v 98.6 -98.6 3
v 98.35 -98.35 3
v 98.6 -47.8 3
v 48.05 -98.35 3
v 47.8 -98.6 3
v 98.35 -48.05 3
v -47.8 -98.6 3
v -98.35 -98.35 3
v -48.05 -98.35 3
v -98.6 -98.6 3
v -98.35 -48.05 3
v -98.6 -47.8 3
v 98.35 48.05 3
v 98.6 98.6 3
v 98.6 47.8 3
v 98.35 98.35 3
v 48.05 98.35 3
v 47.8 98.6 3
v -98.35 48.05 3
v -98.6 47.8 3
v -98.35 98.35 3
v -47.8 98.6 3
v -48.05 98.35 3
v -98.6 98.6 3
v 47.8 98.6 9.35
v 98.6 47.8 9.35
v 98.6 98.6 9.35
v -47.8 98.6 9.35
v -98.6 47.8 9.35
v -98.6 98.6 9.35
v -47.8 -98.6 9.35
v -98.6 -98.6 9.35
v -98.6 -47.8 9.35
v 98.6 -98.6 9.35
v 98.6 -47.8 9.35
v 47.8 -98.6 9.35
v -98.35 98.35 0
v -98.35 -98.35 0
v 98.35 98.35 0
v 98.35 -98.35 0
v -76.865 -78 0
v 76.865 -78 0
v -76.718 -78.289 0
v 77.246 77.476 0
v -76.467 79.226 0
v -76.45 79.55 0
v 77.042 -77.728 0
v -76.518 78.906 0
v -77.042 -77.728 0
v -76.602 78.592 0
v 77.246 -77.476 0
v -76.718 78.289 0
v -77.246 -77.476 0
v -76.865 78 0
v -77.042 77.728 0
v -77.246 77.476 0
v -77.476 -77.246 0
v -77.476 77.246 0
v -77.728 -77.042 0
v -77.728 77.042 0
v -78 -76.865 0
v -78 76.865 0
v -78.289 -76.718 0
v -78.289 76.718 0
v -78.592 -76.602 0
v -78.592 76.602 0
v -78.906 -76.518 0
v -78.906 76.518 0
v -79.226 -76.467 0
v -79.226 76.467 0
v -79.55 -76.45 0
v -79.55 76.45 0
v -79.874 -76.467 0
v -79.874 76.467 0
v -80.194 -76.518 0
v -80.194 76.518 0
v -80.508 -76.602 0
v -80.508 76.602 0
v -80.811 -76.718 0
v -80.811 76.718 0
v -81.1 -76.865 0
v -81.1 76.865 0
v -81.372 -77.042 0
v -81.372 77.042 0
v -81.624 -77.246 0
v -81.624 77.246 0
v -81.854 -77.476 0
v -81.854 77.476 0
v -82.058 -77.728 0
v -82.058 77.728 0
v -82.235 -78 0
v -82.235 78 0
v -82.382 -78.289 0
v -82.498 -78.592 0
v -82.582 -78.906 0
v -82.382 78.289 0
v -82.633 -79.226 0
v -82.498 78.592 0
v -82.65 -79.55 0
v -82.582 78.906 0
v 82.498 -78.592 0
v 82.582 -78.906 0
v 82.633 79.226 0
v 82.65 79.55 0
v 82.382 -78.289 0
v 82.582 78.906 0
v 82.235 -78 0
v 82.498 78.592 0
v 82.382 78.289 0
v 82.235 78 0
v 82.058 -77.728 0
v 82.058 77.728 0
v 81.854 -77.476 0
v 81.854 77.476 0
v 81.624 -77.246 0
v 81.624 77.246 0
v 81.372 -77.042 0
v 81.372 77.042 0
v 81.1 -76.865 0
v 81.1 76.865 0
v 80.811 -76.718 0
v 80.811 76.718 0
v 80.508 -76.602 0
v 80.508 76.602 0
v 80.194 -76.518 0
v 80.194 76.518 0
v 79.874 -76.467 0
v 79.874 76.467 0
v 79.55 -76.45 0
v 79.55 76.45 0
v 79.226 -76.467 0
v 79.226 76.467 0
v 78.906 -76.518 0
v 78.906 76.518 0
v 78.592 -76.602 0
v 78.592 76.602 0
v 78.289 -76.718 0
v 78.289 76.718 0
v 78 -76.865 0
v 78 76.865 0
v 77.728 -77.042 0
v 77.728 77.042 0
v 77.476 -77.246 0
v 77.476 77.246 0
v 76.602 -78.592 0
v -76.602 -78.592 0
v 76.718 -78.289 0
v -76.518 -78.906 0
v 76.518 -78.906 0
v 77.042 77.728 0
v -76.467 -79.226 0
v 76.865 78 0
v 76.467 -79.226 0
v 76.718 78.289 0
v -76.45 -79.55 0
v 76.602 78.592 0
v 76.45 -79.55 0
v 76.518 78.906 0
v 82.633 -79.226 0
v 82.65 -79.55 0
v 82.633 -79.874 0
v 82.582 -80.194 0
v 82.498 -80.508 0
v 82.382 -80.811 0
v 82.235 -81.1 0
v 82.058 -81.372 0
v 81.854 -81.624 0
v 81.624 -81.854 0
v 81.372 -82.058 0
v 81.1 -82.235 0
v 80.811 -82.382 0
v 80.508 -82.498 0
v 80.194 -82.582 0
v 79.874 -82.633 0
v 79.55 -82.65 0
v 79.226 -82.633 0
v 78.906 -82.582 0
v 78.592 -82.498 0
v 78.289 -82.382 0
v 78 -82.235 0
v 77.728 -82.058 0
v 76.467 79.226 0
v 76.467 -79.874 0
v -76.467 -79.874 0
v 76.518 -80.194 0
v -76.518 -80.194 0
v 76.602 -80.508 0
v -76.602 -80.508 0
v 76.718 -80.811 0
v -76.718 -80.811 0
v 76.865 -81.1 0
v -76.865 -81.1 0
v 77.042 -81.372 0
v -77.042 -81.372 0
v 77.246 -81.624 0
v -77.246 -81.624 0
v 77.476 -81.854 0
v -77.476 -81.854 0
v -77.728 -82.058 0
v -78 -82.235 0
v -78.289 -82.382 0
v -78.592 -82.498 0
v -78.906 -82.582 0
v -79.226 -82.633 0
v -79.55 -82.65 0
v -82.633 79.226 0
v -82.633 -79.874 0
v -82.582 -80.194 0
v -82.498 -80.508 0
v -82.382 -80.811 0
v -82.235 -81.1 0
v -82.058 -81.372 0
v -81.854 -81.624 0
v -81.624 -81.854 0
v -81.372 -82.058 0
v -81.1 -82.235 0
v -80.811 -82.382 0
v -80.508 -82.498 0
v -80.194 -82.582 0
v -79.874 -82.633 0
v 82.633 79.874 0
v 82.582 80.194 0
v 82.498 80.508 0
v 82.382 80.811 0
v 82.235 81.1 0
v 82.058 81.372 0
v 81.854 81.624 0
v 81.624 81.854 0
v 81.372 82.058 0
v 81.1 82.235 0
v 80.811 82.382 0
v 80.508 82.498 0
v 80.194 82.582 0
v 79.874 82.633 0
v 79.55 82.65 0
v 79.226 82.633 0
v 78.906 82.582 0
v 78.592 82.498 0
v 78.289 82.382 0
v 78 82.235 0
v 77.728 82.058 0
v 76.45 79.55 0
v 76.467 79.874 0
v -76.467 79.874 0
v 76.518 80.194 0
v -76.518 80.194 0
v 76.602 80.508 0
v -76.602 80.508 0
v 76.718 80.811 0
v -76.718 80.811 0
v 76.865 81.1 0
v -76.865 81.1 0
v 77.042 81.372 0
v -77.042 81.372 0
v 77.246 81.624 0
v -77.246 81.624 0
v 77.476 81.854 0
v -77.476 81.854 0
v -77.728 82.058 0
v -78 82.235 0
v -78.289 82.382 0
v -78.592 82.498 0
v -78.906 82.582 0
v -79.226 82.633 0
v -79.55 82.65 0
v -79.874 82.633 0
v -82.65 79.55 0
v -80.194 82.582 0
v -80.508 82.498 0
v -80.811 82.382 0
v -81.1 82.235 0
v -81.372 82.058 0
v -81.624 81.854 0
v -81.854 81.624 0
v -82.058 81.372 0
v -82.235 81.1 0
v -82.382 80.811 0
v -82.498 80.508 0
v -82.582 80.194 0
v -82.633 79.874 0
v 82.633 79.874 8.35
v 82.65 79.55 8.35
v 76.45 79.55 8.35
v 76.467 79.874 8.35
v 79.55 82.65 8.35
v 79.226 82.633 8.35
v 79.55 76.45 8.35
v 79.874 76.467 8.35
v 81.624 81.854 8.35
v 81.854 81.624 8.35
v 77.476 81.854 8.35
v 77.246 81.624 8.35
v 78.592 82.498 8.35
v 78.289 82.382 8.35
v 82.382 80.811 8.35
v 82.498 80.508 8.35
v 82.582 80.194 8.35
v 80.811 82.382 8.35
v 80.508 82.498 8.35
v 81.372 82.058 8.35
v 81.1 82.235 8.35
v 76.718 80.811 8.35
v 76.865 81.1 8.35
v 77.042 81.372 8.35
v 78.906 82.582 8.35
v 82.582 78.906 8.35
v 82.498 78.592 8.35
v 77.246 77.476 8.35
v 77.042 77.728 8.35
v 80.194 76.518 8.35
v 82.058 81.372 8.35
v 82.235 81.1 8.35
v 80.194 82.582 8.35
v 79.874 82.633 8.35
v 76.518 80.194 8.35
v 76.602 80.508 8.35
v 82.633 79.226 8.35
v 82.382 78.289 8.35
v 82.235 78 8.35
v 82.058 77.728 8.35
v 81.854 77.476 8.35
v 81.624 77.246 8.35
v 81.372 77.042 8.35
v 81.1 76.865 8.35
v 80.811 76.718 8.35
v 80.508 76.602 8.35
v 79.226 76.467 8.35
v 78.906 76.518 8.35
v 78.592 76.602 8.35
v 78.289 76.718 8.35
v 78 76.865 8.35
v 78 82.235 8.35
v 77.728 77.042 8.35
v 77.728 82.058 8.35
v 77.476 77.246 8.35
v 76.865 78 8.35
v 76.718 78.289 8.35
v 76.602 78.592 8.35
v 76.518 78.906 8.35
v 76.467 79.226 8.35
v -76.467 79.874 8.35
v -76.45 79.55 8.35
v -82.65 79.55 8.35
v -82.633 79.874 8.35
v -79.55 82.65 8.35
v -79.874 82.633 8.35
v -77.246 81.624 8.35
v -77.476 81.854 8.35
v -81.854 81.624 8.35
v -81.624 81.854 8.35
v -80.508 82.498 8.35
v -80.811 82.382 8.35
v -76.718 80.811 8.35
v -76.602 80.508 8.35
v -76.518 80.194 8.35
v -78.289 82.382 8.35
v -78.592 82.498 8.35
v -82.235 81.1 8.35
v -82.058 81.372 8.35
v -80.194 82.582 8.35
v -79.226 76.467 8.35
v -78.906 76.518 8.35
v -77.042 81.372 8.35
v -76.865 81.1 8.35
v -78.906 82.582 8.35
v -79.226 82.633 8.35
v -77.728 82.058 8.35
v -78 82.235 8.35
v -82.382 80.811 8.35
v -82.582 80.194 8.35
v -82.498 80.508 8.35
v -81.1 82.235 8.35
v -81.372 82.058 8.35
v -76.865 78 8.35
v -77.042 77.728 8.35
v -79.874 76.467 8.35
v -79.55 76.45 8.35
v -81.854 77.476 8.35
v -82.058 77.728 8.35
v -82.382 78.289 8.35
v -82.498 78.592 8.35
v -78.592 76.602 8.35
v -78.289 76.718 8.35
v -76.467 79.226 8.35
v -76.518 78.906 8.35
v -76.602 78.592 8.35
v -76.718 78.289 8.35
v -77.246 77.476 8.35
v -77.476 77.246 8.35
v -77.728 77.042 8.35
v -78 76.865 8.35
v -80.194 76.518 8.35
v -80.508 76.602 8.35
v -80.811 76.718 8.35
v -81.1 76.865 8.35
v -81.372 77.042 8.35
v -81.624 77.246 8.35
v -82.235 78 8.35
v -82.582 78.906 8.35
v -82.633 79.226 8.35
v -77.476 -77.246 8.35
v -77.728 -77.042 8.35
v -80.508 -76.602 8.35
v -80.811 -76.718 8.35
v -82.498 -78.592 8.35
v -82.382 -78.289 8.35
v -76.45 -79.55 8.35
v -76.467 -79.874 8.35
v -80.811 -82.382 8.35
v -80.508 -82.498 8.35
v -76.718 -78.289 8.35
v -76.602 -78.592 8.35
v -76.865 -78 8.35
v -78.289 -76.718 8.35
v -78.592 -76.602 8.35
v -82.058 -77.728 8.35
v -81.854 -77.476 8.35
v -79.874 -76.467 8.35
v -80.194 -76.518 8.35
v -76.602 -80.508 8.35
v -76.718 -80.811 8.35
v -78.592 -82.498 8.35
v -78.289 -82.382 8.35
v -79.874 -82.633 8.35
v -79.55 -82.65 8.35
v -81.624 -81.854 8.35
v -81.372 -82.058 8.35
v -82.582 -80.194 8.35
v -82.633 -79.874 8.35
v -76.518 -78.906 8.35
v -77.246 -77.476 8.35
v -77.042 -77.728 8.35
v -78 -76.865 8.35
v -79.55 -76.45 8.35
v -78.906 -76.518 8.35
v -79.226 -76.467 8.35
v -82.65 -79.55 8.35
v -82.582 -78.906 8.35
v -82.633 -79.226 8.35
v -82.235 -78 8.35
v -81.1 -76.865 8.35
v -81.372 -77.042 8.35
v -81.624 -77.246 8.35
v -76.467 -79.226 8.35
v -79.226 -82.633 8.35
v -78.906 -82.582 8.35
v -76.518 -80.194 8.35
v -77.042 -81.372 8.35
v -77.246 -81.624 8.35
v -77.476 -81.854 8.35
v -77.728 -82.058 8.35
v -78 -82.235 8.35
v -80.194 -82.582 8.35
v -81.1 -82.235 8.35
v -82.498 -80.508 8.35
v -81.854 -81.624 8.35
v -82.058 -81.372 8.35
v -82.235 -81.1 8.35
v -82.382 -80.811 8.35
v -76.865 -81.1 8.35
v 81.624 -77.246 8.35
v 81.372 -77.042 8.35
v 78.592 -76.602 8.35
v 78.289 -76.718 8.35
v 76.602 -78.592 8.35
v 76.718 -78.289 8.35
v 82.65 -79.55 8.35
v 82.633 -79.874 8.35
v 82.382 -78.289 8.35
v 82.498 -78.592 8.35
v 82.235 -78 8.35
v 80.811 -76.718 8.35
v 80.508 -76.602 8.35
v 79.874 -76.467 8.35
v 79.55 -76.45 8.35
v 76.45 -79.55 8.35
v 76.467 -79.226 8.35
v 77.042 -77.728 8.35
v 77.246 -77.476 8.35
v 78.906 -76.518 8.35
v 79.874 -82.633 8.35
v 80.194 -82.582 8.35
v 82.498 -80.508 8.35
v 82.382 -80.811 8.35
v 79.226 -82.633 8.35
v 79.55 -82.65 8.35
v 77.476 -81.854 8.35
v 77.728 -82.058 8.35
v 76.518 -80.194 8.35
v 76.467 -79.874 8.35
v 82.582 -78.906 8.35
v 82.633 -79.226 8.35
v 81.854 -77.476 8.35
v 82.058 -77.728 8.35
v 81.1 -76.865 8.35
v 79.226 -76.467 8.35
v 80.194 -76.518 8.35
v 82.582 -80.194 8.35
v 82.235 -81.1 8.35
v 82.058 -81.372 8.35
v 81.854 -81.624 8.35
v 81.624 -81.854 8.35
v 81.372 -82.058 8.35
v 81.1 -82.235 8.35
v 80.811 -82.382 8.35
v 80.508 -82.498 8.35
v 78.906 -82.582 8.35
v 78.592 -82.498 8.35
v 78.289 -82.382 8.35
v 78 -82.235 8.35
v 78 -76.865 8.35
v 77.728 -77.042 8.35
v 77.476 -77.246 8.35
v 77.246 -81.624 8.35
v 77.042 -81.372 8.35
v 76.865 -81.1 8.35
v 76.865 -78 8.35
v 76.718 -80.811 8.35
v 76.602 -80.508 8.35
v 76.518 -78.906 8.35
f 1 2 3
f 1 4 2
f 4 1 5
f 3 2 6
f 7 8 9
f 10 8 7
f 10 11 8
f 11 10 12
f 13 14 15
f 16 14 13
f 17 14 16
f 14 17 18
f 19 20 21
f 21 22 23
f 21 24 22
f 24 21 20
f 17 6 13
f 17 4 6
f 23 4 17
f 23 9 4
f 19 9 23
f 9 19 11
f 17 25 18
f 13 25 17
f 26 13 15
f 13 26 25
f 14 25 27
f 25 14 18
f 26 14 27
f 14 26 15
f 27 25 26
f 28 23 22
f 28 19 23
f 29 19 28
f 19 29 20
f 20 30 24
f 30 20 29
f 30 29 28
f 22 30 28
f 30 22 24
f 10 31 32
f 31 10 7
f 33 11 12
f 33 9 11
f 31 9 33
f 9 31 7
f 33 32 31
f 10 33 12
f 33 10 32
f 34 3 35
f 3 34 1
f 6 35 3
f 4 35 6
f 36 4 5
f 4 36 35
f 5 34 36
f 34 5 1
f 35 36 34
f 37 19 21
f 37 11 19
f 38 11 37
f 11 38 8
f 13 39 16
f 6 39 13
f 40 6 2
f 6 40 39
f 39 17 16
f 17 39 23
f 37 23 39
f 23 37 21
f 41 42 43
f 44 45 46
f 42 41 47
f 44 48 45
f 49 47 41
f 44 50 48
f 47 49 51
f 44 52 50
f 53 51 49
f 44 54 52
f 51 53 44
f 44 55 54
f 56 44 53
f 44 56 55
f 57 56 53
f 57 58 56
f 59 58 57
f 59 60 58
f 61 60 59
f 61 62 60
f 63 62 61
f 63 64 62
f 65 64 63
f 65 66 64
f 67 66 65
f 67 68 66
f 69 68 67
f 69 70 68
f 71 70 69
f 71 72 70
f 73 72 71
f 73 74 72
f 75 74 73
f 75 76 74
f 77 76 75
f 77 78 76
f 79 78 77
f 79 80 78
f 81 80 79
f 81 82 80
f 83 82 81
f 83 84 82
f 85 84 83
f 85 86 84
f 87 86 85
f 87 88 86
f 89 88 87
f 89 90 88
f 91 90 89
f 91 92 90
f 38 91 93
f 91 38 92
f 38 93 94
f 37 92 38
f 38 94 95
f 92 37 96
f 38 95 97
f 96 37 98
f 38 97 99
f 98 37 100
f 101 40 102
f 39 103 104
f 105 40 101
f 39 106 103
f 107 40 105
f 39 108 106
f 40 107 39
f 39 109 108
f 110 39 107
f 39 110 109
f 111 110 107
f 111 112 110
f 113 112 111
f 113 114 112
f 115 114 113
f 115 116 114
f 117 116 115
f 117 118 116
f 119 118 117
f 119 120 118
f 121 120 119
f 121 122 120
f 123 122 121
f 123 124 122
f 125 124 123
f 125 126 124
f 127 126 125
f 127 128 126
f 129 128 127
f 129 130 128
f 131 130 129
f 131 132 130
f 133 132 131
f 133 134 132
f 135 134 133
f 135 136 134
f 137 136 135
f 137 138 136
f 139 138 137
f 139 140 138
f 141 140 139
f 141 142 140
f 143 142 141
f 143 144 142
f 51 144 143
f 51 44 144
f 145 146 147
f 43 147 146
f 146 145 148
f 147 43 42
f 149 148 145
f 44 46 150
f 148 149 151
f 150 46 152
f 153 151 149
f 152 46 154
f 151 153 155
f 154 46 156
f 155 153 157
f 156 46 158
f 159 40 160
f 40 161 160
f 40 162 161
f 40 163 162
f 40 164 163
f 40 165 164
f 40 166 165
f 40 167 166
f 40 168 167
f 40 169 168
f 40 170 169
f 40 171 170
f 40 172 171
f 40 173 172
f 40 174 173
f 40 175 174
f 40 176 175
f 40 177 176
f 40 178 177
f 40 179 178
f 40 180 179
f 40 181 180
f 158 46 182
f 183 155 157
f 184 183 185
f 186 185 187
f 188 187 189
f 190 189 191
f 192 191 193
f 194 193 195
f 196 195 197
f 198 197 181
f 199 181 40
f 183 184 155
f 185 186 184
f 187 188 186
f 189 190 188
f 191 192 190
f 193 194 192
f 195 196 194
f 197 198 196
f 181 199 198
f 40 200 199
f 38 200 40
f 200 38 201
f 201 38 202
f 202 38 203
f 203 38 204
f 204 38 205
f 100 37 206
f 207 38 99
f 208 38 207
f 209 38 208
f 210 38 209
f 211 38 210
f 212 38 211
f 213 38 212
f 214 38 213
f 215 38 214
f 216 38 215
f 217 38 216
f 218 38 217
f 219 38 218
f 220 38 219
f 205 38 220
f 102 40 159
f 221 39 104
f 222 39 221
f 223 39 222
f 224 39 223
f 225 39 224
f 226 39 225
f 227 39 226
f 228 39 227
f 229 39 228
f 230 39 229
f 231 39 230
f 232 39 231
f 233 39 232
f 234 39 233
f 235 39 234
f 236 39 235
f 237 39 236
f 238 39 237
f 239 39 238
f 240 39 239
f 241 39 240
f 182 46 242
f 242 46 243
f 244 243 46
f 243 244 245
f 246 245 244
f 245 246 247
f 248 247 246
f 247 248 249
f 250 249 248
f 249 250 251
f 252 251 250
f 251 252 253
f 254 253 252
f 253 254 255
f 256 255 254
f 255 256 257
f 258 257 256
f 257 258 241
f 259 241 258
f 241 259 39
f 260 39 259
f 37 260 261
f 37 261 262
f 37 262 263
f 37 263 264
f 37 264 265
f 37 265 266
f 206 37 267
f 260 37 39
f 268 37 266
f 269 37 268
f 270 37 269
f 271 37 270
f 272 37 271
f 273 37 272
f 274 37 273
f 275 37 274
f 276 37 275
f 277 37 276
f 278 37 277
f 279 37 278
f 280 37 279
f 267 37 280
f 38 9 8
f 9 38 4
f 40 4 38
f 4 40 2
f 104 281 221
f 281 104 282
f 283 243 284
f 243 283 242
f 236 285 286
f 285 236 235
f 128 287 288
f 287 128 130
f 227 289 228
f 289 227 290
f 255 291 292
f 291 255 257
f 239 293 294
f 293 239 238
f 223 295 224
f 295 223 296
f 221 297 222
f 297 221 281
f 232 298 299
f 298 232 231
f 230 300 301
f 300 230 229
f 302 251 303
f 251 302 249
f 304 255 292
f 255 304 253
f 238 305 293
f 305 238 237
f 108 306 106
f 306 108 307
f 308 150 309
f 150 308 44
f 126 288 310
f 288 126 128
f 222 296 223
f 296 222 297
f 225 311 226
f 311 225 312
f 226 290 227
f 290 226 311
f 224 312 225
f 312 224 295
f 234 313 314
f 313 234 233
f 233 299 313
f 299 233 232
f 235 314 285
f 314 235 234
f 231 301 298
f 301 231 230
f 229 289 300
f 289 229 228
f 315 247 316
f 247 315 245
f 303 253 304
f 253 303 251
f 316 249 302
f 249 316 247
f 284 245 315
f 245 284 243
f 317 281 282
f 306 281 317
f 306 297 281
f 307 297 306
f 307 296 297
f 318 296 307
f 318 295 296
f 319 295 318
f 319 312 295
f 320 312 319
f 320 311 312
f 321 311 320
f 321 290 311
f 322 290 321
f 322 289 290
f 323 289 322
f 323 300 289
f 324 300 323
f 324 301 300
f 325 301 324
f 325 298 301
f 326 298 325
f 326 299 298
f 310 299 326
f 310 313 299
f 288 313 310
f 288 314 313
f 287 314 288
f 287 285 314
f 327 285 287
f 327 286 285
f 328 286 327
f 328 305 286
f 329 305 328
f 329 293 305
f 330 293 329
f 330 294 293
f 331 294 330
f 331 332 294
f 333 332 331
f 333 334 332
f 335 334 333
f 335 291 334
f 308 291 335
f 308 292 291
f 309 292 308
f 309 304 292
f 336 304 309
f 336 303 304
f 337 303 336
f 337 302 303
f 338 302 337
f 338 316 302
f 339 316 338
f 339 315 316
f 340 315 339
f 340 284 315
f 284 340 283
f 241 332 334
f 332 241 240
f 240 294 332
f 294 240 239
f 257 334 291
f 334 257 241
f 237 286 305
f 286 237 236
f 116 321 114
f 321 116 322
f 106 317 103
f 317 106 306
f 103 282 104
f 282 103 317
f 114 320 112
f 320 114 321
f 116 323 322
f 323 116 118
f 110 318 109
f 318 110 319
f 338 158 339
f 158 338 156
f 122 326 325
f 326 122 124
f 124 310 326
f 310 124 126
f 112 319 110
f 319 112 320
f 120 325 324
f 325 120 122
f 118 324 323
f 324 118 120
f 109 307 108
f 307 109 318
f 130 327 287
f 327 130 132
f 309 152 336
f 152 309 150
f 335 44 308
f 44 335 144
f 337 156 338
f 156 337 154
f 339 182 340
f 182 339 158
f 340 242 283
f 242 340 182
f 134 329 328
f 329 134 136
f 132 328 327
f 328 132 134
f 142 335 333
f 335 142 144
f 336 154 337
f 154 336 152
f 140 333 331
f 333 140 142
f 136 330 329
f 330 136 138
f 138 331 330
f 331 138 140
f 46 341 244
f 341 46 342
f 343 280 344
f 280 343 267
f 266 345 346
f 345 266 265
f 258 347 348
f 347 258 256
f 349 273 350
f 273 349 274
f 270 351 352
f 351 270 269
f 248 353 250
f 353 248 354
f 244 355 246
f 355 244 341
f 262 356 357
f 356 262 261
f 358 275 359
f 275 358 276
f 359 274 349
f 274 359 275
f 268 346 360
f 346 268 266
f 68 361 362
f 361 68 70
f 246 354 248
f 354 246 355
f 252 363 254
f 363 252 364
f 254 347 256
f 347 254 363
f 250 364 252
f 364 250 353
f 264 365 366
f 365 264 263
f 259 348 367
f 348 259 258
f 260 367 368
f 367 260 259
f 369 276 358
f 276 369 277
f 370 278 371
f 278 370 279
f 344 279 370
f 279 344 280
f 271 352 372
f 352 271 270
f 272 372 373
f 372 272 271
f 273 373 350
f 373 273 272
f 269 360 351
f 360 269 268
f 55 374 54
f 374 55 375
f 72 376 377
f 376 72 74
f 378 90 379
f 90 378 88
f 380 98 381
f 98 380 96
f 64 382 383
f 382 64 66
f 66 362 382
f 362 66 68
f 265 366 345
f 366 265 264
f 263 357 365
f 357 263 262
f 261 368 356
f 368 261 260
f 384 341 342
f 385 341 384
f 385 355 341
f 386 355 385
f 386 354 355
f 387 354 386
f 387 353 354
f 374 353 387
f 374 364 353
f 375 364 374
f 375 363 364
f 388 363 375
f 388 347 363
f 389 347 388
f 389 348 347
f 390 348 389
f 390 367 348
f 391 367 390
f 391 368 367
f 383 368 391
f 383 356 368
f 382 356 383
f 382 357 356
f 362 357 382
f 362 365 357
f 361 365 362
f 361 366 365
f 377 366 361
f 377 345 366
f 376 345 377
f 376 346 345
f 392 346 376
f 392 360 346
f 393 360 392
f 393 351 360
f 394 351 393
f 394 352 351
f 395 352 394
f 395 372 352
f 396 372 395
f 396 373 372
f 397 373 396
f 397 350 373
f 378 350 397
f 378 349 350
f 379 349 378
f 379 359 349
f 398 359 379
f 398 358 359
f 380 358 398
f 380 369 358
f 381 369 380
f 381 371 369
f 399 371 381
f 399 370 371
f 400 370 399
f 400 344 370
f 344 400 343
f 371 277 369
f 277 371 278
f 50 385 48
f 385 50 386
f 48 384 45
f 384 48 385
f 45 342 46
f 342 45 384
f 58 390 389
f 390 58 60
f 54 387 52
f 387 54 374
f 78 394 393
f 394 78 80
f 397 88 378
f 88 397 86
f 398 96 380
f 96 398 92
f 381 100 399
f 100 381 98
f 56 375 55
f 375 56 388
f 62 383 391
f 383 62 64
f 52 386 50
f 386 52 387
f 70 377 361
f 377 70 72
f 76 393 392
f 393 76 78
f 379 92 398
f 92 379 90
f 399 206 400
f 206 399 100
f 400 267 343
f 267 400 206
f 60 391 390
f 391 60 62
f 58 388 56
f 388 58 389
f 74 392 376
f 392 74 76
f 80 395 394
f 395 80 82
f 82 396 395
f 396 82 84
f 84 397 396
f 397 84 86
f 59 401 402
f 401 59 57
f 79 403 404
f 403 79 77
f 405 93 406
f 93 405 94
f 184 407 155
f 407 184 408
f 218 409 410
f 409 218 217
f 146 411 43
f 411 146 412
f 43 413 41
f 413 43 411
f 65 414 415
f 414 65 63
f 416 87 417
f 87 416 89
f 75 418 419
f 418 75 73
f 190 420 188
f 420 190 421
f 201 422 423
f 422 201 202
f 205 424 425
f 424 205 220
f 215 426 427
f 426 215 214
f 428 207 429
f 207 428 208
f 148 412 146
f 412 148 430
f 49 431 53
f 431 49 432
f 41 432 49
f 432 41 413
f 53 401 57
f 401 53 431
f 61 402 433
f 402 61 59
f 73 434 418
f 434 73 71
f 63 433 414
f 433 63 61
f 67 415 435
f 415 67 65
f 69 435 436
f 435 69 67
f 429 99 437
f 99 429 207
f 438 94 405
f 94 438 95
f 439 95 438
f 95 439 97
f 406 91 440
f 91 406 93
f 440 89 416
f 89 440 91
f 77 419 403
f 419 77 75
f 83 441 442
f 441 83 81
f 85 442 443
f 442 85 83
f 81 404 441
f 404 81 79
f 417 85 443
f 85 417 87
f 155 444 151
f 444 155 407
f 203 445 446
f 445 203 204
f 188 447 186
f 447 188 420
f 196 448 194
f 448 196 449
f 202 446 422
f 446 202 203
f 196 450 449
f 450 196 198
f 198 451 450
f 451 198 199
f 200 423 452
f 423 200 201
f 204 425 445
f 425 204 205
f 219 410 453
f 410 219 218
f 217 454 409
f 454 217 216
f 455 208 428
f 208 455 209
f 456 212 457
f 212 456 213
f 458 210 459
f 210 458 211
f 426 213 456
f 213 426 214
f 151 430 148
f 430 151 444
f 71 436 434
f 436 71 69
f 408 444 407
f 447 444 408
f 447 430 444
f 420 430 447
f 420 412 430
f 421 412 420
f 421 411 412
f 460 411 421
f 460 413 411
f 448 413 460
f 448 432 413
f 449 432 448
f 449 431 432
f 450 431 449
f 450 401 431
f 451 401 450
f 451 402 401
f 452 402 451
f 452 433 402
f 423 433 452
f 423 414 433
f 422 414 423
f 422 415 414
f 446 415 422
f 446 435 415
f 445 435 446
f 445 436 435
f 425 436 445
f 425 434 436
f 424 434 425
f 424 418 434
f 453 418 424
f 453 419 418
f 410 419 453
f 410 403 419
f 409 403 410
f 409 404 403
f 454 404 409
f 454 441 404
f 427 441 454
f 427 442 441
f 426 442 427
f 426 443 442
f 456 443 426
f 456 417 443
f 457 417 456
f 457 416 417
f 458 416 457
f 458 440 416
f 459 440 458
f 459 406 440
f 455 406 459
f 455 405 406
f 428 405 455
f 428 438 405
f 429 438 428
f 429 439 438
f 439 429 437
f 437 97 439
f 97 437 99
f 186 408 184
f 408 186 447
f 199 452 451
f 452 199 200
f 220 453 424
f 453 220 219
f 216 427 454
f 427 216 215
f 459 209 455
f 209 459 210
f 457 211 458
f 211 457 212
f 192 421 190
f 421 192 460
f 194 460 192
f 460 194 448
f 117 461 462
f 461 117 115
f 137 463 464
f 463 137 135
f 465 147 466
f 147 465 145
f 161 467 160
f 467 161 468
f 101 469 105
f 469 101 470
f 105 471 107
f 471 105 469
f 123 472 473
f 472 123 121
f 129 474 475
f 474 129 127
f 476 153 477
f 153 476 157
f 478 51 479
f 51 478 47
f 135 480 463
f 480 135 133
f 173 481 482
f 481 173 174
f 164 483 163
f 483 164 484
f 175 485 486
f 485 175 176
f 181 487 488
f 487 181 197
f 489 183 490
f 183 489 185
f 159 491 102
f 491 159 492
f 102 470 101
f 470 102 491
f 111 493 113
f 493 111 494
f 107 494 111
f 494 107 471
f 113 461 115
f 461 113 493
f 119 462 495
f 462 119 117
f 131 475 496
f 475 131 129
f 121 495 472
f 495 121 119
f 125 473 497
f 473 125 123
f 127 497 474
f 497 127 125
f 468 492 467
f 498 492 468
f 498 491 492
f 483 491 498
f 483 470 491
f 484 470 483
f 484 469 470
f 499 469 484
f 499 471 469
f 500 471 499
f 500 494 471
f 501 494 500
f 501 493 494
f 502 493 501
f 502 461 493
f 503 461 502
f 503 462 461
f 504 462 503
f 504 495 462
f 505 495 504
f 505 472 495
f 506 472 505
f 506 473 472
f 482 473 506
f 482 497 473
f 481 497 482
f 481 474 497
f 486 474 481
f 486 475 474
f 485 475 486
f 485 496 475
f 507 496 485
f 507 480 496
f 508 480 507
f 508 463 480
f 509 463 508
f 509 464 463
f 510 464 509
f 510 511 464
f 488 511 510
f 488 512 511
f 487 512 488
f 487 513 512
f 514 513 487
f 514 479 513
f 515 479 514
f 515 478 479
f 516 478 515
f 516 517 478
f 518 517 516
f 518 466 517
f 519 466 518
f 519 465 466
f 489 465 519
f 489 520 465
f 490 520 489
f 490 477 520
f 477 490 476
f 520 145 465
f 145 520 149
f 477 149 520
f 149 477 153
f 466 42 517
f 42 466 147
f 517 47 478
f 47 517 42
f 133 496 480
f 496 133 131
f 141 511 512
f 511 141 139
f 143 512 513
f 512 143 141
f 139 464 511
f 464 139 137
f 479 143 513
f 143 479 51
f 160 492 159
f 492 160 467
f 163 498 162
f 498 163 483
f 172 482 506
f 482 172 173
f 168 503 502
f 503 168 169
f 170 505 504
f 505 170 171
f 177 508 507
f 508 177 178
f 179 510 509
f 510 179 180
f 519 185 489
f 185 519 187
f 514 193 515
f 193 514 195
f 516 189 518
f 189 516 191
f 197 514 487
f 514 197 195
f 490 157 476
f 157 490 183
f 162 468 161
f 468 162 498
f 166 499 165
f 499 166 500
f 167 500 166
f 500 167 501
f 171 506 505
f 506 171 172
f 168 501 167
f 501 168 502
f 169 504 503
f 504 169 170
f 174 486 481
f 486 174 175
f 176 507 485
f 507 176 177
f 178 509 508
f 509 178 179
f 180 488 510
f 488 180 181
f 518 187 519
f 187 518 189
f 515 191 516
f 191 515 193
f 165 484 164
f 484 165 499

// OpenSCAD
// All-Seeing Eye - Base Plate
// Version: 1.0 (Corresponds to Shell v1.6)

/* [Global Dimensions] */
INCH = 25.4;

base_width = 8.0 * INCH;
plate_thickness = 3.0;
wall_thickness = 3.0;

// Alignment Tabs
tab_height = 0.25 * INCH; // Stacks on top of plate
total_height = plate_thickness + tab_height;

// Magnet logic
magnet_diam = 6.2; // 6mm + tolerance
magnet_load_depth = total_height - 1.0; // Hole depth from bottom, leaving 1mm bridge at top

/* [Rendering] */
$fn = 60;

module base_plate_main() {
    
    // Fit tolerance
    tol = 0.5; // mm gap total (0.25 per side)
    
    plate_w = base_width - 2*wall_thickness - tol;
    
    difference() {
        // 1. Positive Volume
        union() {
            // A. Base Plate (Fits INSIDE the shell walls)
            translate([0, 0, plate_thickness/2])
                cube([plate_w, plate_w, plate_thickness], center=true);
            
            // B. Alignment Tabs (Corner Triangles)
            // They sit on top of the plate (starts at z = plate_thickness)
            translate([0, 0, plate_thickness])
                alignment_tabs();
        }

        // 2. Negative Volume (Magnet Holes)
        // Access from BOTTOM (z=0)
        magnet_holes();
    }
}

module alignment_tabs() {
    // Generate 4 corner triangles
    // They fit INSIDE the shell walls.
    // The plate is ALREADY inside the walls. 
    // So the tabs are flush with the plate corners?
    // Let's keep them aligned to the same coordinate system.
    
    offset_dist = base_width/2 - wall_thickness; // Corner of the inner void
    
    // Triangle size: Fill the corner? 
    // Let's make them 1 inch legs for stability
    tri_leg = 2.0 * INCH;
    
    // Corner 1 (+X, +Y)
    translate([offset_dist, offset_dist, 0]) rotate([0,0,180]) corner_triangle(tri_leg, tab_height);
    
    // Corner 2 (-X, +Y)
    translate([-offset_dist, offset_dist, 0]) rotate([0,0,-90]) corner_triangle(tri_leg, tab_height);
    
    // Corner 3 (-X, -Y)
    translate([-offset_dist, -offset_dist, 0]) rotate([0,0,0]) corner_triangle(tri_leg, tab_height);
    
    // Corner 4 (+X, -Y)
    translate([offset_dist, -offset_dist, 0]) rotate([0,0,90]) corner_triangle(tri_leg, tab_height);
}

module corner_triangle(leg, h) {
    // Right isosceles triangle in the corner
    linear_extrude(h) {
        polygon([
            [0,0], 
            [leg, 0], 
            [0, leg]
        ]);
    }
}

module magnet_holes() {
    // Positions must match the center of mass of the triangles or close to the corner
    offset_dist = base_width/2 - wall_thickness; 
    tri_leg = 2.0 * INCH;
    
    // Magnet position: centered in the triangle's bulk?
    // Let's place it at (leg/3, leg/3) from the inner corner (Center of mass of triangle is 1/3)
    // Actually, closer to corner is better for snapping. Let's do 0.25 inch from corner.
    mag_offset = 0.75 * INCH;
    
    // Calculate global positions relative to center
    // Inner corner is at +/- offset_dist
    // We want to move 'inward' by mag_offset
    
    px = offset_dist - mag_offset;
    py = offset_dist - mag_offset;
    
    hole_depth = magnet_load_depth;
    
    positions = [
        [px, py],   // Top Right
        [-px, py],  // Top Left
        [-px, -py], // Bottom Left
        [px, -py]   // Bottom Right
    ];
    
    for(pos = positions) {
        translate([pos[0], pos[1], -0.1])
            cylinder(h = hole_depth + 0.1, d = magnet_diam); // +0.1 for clean cut
    }
}

base_plate_main();
